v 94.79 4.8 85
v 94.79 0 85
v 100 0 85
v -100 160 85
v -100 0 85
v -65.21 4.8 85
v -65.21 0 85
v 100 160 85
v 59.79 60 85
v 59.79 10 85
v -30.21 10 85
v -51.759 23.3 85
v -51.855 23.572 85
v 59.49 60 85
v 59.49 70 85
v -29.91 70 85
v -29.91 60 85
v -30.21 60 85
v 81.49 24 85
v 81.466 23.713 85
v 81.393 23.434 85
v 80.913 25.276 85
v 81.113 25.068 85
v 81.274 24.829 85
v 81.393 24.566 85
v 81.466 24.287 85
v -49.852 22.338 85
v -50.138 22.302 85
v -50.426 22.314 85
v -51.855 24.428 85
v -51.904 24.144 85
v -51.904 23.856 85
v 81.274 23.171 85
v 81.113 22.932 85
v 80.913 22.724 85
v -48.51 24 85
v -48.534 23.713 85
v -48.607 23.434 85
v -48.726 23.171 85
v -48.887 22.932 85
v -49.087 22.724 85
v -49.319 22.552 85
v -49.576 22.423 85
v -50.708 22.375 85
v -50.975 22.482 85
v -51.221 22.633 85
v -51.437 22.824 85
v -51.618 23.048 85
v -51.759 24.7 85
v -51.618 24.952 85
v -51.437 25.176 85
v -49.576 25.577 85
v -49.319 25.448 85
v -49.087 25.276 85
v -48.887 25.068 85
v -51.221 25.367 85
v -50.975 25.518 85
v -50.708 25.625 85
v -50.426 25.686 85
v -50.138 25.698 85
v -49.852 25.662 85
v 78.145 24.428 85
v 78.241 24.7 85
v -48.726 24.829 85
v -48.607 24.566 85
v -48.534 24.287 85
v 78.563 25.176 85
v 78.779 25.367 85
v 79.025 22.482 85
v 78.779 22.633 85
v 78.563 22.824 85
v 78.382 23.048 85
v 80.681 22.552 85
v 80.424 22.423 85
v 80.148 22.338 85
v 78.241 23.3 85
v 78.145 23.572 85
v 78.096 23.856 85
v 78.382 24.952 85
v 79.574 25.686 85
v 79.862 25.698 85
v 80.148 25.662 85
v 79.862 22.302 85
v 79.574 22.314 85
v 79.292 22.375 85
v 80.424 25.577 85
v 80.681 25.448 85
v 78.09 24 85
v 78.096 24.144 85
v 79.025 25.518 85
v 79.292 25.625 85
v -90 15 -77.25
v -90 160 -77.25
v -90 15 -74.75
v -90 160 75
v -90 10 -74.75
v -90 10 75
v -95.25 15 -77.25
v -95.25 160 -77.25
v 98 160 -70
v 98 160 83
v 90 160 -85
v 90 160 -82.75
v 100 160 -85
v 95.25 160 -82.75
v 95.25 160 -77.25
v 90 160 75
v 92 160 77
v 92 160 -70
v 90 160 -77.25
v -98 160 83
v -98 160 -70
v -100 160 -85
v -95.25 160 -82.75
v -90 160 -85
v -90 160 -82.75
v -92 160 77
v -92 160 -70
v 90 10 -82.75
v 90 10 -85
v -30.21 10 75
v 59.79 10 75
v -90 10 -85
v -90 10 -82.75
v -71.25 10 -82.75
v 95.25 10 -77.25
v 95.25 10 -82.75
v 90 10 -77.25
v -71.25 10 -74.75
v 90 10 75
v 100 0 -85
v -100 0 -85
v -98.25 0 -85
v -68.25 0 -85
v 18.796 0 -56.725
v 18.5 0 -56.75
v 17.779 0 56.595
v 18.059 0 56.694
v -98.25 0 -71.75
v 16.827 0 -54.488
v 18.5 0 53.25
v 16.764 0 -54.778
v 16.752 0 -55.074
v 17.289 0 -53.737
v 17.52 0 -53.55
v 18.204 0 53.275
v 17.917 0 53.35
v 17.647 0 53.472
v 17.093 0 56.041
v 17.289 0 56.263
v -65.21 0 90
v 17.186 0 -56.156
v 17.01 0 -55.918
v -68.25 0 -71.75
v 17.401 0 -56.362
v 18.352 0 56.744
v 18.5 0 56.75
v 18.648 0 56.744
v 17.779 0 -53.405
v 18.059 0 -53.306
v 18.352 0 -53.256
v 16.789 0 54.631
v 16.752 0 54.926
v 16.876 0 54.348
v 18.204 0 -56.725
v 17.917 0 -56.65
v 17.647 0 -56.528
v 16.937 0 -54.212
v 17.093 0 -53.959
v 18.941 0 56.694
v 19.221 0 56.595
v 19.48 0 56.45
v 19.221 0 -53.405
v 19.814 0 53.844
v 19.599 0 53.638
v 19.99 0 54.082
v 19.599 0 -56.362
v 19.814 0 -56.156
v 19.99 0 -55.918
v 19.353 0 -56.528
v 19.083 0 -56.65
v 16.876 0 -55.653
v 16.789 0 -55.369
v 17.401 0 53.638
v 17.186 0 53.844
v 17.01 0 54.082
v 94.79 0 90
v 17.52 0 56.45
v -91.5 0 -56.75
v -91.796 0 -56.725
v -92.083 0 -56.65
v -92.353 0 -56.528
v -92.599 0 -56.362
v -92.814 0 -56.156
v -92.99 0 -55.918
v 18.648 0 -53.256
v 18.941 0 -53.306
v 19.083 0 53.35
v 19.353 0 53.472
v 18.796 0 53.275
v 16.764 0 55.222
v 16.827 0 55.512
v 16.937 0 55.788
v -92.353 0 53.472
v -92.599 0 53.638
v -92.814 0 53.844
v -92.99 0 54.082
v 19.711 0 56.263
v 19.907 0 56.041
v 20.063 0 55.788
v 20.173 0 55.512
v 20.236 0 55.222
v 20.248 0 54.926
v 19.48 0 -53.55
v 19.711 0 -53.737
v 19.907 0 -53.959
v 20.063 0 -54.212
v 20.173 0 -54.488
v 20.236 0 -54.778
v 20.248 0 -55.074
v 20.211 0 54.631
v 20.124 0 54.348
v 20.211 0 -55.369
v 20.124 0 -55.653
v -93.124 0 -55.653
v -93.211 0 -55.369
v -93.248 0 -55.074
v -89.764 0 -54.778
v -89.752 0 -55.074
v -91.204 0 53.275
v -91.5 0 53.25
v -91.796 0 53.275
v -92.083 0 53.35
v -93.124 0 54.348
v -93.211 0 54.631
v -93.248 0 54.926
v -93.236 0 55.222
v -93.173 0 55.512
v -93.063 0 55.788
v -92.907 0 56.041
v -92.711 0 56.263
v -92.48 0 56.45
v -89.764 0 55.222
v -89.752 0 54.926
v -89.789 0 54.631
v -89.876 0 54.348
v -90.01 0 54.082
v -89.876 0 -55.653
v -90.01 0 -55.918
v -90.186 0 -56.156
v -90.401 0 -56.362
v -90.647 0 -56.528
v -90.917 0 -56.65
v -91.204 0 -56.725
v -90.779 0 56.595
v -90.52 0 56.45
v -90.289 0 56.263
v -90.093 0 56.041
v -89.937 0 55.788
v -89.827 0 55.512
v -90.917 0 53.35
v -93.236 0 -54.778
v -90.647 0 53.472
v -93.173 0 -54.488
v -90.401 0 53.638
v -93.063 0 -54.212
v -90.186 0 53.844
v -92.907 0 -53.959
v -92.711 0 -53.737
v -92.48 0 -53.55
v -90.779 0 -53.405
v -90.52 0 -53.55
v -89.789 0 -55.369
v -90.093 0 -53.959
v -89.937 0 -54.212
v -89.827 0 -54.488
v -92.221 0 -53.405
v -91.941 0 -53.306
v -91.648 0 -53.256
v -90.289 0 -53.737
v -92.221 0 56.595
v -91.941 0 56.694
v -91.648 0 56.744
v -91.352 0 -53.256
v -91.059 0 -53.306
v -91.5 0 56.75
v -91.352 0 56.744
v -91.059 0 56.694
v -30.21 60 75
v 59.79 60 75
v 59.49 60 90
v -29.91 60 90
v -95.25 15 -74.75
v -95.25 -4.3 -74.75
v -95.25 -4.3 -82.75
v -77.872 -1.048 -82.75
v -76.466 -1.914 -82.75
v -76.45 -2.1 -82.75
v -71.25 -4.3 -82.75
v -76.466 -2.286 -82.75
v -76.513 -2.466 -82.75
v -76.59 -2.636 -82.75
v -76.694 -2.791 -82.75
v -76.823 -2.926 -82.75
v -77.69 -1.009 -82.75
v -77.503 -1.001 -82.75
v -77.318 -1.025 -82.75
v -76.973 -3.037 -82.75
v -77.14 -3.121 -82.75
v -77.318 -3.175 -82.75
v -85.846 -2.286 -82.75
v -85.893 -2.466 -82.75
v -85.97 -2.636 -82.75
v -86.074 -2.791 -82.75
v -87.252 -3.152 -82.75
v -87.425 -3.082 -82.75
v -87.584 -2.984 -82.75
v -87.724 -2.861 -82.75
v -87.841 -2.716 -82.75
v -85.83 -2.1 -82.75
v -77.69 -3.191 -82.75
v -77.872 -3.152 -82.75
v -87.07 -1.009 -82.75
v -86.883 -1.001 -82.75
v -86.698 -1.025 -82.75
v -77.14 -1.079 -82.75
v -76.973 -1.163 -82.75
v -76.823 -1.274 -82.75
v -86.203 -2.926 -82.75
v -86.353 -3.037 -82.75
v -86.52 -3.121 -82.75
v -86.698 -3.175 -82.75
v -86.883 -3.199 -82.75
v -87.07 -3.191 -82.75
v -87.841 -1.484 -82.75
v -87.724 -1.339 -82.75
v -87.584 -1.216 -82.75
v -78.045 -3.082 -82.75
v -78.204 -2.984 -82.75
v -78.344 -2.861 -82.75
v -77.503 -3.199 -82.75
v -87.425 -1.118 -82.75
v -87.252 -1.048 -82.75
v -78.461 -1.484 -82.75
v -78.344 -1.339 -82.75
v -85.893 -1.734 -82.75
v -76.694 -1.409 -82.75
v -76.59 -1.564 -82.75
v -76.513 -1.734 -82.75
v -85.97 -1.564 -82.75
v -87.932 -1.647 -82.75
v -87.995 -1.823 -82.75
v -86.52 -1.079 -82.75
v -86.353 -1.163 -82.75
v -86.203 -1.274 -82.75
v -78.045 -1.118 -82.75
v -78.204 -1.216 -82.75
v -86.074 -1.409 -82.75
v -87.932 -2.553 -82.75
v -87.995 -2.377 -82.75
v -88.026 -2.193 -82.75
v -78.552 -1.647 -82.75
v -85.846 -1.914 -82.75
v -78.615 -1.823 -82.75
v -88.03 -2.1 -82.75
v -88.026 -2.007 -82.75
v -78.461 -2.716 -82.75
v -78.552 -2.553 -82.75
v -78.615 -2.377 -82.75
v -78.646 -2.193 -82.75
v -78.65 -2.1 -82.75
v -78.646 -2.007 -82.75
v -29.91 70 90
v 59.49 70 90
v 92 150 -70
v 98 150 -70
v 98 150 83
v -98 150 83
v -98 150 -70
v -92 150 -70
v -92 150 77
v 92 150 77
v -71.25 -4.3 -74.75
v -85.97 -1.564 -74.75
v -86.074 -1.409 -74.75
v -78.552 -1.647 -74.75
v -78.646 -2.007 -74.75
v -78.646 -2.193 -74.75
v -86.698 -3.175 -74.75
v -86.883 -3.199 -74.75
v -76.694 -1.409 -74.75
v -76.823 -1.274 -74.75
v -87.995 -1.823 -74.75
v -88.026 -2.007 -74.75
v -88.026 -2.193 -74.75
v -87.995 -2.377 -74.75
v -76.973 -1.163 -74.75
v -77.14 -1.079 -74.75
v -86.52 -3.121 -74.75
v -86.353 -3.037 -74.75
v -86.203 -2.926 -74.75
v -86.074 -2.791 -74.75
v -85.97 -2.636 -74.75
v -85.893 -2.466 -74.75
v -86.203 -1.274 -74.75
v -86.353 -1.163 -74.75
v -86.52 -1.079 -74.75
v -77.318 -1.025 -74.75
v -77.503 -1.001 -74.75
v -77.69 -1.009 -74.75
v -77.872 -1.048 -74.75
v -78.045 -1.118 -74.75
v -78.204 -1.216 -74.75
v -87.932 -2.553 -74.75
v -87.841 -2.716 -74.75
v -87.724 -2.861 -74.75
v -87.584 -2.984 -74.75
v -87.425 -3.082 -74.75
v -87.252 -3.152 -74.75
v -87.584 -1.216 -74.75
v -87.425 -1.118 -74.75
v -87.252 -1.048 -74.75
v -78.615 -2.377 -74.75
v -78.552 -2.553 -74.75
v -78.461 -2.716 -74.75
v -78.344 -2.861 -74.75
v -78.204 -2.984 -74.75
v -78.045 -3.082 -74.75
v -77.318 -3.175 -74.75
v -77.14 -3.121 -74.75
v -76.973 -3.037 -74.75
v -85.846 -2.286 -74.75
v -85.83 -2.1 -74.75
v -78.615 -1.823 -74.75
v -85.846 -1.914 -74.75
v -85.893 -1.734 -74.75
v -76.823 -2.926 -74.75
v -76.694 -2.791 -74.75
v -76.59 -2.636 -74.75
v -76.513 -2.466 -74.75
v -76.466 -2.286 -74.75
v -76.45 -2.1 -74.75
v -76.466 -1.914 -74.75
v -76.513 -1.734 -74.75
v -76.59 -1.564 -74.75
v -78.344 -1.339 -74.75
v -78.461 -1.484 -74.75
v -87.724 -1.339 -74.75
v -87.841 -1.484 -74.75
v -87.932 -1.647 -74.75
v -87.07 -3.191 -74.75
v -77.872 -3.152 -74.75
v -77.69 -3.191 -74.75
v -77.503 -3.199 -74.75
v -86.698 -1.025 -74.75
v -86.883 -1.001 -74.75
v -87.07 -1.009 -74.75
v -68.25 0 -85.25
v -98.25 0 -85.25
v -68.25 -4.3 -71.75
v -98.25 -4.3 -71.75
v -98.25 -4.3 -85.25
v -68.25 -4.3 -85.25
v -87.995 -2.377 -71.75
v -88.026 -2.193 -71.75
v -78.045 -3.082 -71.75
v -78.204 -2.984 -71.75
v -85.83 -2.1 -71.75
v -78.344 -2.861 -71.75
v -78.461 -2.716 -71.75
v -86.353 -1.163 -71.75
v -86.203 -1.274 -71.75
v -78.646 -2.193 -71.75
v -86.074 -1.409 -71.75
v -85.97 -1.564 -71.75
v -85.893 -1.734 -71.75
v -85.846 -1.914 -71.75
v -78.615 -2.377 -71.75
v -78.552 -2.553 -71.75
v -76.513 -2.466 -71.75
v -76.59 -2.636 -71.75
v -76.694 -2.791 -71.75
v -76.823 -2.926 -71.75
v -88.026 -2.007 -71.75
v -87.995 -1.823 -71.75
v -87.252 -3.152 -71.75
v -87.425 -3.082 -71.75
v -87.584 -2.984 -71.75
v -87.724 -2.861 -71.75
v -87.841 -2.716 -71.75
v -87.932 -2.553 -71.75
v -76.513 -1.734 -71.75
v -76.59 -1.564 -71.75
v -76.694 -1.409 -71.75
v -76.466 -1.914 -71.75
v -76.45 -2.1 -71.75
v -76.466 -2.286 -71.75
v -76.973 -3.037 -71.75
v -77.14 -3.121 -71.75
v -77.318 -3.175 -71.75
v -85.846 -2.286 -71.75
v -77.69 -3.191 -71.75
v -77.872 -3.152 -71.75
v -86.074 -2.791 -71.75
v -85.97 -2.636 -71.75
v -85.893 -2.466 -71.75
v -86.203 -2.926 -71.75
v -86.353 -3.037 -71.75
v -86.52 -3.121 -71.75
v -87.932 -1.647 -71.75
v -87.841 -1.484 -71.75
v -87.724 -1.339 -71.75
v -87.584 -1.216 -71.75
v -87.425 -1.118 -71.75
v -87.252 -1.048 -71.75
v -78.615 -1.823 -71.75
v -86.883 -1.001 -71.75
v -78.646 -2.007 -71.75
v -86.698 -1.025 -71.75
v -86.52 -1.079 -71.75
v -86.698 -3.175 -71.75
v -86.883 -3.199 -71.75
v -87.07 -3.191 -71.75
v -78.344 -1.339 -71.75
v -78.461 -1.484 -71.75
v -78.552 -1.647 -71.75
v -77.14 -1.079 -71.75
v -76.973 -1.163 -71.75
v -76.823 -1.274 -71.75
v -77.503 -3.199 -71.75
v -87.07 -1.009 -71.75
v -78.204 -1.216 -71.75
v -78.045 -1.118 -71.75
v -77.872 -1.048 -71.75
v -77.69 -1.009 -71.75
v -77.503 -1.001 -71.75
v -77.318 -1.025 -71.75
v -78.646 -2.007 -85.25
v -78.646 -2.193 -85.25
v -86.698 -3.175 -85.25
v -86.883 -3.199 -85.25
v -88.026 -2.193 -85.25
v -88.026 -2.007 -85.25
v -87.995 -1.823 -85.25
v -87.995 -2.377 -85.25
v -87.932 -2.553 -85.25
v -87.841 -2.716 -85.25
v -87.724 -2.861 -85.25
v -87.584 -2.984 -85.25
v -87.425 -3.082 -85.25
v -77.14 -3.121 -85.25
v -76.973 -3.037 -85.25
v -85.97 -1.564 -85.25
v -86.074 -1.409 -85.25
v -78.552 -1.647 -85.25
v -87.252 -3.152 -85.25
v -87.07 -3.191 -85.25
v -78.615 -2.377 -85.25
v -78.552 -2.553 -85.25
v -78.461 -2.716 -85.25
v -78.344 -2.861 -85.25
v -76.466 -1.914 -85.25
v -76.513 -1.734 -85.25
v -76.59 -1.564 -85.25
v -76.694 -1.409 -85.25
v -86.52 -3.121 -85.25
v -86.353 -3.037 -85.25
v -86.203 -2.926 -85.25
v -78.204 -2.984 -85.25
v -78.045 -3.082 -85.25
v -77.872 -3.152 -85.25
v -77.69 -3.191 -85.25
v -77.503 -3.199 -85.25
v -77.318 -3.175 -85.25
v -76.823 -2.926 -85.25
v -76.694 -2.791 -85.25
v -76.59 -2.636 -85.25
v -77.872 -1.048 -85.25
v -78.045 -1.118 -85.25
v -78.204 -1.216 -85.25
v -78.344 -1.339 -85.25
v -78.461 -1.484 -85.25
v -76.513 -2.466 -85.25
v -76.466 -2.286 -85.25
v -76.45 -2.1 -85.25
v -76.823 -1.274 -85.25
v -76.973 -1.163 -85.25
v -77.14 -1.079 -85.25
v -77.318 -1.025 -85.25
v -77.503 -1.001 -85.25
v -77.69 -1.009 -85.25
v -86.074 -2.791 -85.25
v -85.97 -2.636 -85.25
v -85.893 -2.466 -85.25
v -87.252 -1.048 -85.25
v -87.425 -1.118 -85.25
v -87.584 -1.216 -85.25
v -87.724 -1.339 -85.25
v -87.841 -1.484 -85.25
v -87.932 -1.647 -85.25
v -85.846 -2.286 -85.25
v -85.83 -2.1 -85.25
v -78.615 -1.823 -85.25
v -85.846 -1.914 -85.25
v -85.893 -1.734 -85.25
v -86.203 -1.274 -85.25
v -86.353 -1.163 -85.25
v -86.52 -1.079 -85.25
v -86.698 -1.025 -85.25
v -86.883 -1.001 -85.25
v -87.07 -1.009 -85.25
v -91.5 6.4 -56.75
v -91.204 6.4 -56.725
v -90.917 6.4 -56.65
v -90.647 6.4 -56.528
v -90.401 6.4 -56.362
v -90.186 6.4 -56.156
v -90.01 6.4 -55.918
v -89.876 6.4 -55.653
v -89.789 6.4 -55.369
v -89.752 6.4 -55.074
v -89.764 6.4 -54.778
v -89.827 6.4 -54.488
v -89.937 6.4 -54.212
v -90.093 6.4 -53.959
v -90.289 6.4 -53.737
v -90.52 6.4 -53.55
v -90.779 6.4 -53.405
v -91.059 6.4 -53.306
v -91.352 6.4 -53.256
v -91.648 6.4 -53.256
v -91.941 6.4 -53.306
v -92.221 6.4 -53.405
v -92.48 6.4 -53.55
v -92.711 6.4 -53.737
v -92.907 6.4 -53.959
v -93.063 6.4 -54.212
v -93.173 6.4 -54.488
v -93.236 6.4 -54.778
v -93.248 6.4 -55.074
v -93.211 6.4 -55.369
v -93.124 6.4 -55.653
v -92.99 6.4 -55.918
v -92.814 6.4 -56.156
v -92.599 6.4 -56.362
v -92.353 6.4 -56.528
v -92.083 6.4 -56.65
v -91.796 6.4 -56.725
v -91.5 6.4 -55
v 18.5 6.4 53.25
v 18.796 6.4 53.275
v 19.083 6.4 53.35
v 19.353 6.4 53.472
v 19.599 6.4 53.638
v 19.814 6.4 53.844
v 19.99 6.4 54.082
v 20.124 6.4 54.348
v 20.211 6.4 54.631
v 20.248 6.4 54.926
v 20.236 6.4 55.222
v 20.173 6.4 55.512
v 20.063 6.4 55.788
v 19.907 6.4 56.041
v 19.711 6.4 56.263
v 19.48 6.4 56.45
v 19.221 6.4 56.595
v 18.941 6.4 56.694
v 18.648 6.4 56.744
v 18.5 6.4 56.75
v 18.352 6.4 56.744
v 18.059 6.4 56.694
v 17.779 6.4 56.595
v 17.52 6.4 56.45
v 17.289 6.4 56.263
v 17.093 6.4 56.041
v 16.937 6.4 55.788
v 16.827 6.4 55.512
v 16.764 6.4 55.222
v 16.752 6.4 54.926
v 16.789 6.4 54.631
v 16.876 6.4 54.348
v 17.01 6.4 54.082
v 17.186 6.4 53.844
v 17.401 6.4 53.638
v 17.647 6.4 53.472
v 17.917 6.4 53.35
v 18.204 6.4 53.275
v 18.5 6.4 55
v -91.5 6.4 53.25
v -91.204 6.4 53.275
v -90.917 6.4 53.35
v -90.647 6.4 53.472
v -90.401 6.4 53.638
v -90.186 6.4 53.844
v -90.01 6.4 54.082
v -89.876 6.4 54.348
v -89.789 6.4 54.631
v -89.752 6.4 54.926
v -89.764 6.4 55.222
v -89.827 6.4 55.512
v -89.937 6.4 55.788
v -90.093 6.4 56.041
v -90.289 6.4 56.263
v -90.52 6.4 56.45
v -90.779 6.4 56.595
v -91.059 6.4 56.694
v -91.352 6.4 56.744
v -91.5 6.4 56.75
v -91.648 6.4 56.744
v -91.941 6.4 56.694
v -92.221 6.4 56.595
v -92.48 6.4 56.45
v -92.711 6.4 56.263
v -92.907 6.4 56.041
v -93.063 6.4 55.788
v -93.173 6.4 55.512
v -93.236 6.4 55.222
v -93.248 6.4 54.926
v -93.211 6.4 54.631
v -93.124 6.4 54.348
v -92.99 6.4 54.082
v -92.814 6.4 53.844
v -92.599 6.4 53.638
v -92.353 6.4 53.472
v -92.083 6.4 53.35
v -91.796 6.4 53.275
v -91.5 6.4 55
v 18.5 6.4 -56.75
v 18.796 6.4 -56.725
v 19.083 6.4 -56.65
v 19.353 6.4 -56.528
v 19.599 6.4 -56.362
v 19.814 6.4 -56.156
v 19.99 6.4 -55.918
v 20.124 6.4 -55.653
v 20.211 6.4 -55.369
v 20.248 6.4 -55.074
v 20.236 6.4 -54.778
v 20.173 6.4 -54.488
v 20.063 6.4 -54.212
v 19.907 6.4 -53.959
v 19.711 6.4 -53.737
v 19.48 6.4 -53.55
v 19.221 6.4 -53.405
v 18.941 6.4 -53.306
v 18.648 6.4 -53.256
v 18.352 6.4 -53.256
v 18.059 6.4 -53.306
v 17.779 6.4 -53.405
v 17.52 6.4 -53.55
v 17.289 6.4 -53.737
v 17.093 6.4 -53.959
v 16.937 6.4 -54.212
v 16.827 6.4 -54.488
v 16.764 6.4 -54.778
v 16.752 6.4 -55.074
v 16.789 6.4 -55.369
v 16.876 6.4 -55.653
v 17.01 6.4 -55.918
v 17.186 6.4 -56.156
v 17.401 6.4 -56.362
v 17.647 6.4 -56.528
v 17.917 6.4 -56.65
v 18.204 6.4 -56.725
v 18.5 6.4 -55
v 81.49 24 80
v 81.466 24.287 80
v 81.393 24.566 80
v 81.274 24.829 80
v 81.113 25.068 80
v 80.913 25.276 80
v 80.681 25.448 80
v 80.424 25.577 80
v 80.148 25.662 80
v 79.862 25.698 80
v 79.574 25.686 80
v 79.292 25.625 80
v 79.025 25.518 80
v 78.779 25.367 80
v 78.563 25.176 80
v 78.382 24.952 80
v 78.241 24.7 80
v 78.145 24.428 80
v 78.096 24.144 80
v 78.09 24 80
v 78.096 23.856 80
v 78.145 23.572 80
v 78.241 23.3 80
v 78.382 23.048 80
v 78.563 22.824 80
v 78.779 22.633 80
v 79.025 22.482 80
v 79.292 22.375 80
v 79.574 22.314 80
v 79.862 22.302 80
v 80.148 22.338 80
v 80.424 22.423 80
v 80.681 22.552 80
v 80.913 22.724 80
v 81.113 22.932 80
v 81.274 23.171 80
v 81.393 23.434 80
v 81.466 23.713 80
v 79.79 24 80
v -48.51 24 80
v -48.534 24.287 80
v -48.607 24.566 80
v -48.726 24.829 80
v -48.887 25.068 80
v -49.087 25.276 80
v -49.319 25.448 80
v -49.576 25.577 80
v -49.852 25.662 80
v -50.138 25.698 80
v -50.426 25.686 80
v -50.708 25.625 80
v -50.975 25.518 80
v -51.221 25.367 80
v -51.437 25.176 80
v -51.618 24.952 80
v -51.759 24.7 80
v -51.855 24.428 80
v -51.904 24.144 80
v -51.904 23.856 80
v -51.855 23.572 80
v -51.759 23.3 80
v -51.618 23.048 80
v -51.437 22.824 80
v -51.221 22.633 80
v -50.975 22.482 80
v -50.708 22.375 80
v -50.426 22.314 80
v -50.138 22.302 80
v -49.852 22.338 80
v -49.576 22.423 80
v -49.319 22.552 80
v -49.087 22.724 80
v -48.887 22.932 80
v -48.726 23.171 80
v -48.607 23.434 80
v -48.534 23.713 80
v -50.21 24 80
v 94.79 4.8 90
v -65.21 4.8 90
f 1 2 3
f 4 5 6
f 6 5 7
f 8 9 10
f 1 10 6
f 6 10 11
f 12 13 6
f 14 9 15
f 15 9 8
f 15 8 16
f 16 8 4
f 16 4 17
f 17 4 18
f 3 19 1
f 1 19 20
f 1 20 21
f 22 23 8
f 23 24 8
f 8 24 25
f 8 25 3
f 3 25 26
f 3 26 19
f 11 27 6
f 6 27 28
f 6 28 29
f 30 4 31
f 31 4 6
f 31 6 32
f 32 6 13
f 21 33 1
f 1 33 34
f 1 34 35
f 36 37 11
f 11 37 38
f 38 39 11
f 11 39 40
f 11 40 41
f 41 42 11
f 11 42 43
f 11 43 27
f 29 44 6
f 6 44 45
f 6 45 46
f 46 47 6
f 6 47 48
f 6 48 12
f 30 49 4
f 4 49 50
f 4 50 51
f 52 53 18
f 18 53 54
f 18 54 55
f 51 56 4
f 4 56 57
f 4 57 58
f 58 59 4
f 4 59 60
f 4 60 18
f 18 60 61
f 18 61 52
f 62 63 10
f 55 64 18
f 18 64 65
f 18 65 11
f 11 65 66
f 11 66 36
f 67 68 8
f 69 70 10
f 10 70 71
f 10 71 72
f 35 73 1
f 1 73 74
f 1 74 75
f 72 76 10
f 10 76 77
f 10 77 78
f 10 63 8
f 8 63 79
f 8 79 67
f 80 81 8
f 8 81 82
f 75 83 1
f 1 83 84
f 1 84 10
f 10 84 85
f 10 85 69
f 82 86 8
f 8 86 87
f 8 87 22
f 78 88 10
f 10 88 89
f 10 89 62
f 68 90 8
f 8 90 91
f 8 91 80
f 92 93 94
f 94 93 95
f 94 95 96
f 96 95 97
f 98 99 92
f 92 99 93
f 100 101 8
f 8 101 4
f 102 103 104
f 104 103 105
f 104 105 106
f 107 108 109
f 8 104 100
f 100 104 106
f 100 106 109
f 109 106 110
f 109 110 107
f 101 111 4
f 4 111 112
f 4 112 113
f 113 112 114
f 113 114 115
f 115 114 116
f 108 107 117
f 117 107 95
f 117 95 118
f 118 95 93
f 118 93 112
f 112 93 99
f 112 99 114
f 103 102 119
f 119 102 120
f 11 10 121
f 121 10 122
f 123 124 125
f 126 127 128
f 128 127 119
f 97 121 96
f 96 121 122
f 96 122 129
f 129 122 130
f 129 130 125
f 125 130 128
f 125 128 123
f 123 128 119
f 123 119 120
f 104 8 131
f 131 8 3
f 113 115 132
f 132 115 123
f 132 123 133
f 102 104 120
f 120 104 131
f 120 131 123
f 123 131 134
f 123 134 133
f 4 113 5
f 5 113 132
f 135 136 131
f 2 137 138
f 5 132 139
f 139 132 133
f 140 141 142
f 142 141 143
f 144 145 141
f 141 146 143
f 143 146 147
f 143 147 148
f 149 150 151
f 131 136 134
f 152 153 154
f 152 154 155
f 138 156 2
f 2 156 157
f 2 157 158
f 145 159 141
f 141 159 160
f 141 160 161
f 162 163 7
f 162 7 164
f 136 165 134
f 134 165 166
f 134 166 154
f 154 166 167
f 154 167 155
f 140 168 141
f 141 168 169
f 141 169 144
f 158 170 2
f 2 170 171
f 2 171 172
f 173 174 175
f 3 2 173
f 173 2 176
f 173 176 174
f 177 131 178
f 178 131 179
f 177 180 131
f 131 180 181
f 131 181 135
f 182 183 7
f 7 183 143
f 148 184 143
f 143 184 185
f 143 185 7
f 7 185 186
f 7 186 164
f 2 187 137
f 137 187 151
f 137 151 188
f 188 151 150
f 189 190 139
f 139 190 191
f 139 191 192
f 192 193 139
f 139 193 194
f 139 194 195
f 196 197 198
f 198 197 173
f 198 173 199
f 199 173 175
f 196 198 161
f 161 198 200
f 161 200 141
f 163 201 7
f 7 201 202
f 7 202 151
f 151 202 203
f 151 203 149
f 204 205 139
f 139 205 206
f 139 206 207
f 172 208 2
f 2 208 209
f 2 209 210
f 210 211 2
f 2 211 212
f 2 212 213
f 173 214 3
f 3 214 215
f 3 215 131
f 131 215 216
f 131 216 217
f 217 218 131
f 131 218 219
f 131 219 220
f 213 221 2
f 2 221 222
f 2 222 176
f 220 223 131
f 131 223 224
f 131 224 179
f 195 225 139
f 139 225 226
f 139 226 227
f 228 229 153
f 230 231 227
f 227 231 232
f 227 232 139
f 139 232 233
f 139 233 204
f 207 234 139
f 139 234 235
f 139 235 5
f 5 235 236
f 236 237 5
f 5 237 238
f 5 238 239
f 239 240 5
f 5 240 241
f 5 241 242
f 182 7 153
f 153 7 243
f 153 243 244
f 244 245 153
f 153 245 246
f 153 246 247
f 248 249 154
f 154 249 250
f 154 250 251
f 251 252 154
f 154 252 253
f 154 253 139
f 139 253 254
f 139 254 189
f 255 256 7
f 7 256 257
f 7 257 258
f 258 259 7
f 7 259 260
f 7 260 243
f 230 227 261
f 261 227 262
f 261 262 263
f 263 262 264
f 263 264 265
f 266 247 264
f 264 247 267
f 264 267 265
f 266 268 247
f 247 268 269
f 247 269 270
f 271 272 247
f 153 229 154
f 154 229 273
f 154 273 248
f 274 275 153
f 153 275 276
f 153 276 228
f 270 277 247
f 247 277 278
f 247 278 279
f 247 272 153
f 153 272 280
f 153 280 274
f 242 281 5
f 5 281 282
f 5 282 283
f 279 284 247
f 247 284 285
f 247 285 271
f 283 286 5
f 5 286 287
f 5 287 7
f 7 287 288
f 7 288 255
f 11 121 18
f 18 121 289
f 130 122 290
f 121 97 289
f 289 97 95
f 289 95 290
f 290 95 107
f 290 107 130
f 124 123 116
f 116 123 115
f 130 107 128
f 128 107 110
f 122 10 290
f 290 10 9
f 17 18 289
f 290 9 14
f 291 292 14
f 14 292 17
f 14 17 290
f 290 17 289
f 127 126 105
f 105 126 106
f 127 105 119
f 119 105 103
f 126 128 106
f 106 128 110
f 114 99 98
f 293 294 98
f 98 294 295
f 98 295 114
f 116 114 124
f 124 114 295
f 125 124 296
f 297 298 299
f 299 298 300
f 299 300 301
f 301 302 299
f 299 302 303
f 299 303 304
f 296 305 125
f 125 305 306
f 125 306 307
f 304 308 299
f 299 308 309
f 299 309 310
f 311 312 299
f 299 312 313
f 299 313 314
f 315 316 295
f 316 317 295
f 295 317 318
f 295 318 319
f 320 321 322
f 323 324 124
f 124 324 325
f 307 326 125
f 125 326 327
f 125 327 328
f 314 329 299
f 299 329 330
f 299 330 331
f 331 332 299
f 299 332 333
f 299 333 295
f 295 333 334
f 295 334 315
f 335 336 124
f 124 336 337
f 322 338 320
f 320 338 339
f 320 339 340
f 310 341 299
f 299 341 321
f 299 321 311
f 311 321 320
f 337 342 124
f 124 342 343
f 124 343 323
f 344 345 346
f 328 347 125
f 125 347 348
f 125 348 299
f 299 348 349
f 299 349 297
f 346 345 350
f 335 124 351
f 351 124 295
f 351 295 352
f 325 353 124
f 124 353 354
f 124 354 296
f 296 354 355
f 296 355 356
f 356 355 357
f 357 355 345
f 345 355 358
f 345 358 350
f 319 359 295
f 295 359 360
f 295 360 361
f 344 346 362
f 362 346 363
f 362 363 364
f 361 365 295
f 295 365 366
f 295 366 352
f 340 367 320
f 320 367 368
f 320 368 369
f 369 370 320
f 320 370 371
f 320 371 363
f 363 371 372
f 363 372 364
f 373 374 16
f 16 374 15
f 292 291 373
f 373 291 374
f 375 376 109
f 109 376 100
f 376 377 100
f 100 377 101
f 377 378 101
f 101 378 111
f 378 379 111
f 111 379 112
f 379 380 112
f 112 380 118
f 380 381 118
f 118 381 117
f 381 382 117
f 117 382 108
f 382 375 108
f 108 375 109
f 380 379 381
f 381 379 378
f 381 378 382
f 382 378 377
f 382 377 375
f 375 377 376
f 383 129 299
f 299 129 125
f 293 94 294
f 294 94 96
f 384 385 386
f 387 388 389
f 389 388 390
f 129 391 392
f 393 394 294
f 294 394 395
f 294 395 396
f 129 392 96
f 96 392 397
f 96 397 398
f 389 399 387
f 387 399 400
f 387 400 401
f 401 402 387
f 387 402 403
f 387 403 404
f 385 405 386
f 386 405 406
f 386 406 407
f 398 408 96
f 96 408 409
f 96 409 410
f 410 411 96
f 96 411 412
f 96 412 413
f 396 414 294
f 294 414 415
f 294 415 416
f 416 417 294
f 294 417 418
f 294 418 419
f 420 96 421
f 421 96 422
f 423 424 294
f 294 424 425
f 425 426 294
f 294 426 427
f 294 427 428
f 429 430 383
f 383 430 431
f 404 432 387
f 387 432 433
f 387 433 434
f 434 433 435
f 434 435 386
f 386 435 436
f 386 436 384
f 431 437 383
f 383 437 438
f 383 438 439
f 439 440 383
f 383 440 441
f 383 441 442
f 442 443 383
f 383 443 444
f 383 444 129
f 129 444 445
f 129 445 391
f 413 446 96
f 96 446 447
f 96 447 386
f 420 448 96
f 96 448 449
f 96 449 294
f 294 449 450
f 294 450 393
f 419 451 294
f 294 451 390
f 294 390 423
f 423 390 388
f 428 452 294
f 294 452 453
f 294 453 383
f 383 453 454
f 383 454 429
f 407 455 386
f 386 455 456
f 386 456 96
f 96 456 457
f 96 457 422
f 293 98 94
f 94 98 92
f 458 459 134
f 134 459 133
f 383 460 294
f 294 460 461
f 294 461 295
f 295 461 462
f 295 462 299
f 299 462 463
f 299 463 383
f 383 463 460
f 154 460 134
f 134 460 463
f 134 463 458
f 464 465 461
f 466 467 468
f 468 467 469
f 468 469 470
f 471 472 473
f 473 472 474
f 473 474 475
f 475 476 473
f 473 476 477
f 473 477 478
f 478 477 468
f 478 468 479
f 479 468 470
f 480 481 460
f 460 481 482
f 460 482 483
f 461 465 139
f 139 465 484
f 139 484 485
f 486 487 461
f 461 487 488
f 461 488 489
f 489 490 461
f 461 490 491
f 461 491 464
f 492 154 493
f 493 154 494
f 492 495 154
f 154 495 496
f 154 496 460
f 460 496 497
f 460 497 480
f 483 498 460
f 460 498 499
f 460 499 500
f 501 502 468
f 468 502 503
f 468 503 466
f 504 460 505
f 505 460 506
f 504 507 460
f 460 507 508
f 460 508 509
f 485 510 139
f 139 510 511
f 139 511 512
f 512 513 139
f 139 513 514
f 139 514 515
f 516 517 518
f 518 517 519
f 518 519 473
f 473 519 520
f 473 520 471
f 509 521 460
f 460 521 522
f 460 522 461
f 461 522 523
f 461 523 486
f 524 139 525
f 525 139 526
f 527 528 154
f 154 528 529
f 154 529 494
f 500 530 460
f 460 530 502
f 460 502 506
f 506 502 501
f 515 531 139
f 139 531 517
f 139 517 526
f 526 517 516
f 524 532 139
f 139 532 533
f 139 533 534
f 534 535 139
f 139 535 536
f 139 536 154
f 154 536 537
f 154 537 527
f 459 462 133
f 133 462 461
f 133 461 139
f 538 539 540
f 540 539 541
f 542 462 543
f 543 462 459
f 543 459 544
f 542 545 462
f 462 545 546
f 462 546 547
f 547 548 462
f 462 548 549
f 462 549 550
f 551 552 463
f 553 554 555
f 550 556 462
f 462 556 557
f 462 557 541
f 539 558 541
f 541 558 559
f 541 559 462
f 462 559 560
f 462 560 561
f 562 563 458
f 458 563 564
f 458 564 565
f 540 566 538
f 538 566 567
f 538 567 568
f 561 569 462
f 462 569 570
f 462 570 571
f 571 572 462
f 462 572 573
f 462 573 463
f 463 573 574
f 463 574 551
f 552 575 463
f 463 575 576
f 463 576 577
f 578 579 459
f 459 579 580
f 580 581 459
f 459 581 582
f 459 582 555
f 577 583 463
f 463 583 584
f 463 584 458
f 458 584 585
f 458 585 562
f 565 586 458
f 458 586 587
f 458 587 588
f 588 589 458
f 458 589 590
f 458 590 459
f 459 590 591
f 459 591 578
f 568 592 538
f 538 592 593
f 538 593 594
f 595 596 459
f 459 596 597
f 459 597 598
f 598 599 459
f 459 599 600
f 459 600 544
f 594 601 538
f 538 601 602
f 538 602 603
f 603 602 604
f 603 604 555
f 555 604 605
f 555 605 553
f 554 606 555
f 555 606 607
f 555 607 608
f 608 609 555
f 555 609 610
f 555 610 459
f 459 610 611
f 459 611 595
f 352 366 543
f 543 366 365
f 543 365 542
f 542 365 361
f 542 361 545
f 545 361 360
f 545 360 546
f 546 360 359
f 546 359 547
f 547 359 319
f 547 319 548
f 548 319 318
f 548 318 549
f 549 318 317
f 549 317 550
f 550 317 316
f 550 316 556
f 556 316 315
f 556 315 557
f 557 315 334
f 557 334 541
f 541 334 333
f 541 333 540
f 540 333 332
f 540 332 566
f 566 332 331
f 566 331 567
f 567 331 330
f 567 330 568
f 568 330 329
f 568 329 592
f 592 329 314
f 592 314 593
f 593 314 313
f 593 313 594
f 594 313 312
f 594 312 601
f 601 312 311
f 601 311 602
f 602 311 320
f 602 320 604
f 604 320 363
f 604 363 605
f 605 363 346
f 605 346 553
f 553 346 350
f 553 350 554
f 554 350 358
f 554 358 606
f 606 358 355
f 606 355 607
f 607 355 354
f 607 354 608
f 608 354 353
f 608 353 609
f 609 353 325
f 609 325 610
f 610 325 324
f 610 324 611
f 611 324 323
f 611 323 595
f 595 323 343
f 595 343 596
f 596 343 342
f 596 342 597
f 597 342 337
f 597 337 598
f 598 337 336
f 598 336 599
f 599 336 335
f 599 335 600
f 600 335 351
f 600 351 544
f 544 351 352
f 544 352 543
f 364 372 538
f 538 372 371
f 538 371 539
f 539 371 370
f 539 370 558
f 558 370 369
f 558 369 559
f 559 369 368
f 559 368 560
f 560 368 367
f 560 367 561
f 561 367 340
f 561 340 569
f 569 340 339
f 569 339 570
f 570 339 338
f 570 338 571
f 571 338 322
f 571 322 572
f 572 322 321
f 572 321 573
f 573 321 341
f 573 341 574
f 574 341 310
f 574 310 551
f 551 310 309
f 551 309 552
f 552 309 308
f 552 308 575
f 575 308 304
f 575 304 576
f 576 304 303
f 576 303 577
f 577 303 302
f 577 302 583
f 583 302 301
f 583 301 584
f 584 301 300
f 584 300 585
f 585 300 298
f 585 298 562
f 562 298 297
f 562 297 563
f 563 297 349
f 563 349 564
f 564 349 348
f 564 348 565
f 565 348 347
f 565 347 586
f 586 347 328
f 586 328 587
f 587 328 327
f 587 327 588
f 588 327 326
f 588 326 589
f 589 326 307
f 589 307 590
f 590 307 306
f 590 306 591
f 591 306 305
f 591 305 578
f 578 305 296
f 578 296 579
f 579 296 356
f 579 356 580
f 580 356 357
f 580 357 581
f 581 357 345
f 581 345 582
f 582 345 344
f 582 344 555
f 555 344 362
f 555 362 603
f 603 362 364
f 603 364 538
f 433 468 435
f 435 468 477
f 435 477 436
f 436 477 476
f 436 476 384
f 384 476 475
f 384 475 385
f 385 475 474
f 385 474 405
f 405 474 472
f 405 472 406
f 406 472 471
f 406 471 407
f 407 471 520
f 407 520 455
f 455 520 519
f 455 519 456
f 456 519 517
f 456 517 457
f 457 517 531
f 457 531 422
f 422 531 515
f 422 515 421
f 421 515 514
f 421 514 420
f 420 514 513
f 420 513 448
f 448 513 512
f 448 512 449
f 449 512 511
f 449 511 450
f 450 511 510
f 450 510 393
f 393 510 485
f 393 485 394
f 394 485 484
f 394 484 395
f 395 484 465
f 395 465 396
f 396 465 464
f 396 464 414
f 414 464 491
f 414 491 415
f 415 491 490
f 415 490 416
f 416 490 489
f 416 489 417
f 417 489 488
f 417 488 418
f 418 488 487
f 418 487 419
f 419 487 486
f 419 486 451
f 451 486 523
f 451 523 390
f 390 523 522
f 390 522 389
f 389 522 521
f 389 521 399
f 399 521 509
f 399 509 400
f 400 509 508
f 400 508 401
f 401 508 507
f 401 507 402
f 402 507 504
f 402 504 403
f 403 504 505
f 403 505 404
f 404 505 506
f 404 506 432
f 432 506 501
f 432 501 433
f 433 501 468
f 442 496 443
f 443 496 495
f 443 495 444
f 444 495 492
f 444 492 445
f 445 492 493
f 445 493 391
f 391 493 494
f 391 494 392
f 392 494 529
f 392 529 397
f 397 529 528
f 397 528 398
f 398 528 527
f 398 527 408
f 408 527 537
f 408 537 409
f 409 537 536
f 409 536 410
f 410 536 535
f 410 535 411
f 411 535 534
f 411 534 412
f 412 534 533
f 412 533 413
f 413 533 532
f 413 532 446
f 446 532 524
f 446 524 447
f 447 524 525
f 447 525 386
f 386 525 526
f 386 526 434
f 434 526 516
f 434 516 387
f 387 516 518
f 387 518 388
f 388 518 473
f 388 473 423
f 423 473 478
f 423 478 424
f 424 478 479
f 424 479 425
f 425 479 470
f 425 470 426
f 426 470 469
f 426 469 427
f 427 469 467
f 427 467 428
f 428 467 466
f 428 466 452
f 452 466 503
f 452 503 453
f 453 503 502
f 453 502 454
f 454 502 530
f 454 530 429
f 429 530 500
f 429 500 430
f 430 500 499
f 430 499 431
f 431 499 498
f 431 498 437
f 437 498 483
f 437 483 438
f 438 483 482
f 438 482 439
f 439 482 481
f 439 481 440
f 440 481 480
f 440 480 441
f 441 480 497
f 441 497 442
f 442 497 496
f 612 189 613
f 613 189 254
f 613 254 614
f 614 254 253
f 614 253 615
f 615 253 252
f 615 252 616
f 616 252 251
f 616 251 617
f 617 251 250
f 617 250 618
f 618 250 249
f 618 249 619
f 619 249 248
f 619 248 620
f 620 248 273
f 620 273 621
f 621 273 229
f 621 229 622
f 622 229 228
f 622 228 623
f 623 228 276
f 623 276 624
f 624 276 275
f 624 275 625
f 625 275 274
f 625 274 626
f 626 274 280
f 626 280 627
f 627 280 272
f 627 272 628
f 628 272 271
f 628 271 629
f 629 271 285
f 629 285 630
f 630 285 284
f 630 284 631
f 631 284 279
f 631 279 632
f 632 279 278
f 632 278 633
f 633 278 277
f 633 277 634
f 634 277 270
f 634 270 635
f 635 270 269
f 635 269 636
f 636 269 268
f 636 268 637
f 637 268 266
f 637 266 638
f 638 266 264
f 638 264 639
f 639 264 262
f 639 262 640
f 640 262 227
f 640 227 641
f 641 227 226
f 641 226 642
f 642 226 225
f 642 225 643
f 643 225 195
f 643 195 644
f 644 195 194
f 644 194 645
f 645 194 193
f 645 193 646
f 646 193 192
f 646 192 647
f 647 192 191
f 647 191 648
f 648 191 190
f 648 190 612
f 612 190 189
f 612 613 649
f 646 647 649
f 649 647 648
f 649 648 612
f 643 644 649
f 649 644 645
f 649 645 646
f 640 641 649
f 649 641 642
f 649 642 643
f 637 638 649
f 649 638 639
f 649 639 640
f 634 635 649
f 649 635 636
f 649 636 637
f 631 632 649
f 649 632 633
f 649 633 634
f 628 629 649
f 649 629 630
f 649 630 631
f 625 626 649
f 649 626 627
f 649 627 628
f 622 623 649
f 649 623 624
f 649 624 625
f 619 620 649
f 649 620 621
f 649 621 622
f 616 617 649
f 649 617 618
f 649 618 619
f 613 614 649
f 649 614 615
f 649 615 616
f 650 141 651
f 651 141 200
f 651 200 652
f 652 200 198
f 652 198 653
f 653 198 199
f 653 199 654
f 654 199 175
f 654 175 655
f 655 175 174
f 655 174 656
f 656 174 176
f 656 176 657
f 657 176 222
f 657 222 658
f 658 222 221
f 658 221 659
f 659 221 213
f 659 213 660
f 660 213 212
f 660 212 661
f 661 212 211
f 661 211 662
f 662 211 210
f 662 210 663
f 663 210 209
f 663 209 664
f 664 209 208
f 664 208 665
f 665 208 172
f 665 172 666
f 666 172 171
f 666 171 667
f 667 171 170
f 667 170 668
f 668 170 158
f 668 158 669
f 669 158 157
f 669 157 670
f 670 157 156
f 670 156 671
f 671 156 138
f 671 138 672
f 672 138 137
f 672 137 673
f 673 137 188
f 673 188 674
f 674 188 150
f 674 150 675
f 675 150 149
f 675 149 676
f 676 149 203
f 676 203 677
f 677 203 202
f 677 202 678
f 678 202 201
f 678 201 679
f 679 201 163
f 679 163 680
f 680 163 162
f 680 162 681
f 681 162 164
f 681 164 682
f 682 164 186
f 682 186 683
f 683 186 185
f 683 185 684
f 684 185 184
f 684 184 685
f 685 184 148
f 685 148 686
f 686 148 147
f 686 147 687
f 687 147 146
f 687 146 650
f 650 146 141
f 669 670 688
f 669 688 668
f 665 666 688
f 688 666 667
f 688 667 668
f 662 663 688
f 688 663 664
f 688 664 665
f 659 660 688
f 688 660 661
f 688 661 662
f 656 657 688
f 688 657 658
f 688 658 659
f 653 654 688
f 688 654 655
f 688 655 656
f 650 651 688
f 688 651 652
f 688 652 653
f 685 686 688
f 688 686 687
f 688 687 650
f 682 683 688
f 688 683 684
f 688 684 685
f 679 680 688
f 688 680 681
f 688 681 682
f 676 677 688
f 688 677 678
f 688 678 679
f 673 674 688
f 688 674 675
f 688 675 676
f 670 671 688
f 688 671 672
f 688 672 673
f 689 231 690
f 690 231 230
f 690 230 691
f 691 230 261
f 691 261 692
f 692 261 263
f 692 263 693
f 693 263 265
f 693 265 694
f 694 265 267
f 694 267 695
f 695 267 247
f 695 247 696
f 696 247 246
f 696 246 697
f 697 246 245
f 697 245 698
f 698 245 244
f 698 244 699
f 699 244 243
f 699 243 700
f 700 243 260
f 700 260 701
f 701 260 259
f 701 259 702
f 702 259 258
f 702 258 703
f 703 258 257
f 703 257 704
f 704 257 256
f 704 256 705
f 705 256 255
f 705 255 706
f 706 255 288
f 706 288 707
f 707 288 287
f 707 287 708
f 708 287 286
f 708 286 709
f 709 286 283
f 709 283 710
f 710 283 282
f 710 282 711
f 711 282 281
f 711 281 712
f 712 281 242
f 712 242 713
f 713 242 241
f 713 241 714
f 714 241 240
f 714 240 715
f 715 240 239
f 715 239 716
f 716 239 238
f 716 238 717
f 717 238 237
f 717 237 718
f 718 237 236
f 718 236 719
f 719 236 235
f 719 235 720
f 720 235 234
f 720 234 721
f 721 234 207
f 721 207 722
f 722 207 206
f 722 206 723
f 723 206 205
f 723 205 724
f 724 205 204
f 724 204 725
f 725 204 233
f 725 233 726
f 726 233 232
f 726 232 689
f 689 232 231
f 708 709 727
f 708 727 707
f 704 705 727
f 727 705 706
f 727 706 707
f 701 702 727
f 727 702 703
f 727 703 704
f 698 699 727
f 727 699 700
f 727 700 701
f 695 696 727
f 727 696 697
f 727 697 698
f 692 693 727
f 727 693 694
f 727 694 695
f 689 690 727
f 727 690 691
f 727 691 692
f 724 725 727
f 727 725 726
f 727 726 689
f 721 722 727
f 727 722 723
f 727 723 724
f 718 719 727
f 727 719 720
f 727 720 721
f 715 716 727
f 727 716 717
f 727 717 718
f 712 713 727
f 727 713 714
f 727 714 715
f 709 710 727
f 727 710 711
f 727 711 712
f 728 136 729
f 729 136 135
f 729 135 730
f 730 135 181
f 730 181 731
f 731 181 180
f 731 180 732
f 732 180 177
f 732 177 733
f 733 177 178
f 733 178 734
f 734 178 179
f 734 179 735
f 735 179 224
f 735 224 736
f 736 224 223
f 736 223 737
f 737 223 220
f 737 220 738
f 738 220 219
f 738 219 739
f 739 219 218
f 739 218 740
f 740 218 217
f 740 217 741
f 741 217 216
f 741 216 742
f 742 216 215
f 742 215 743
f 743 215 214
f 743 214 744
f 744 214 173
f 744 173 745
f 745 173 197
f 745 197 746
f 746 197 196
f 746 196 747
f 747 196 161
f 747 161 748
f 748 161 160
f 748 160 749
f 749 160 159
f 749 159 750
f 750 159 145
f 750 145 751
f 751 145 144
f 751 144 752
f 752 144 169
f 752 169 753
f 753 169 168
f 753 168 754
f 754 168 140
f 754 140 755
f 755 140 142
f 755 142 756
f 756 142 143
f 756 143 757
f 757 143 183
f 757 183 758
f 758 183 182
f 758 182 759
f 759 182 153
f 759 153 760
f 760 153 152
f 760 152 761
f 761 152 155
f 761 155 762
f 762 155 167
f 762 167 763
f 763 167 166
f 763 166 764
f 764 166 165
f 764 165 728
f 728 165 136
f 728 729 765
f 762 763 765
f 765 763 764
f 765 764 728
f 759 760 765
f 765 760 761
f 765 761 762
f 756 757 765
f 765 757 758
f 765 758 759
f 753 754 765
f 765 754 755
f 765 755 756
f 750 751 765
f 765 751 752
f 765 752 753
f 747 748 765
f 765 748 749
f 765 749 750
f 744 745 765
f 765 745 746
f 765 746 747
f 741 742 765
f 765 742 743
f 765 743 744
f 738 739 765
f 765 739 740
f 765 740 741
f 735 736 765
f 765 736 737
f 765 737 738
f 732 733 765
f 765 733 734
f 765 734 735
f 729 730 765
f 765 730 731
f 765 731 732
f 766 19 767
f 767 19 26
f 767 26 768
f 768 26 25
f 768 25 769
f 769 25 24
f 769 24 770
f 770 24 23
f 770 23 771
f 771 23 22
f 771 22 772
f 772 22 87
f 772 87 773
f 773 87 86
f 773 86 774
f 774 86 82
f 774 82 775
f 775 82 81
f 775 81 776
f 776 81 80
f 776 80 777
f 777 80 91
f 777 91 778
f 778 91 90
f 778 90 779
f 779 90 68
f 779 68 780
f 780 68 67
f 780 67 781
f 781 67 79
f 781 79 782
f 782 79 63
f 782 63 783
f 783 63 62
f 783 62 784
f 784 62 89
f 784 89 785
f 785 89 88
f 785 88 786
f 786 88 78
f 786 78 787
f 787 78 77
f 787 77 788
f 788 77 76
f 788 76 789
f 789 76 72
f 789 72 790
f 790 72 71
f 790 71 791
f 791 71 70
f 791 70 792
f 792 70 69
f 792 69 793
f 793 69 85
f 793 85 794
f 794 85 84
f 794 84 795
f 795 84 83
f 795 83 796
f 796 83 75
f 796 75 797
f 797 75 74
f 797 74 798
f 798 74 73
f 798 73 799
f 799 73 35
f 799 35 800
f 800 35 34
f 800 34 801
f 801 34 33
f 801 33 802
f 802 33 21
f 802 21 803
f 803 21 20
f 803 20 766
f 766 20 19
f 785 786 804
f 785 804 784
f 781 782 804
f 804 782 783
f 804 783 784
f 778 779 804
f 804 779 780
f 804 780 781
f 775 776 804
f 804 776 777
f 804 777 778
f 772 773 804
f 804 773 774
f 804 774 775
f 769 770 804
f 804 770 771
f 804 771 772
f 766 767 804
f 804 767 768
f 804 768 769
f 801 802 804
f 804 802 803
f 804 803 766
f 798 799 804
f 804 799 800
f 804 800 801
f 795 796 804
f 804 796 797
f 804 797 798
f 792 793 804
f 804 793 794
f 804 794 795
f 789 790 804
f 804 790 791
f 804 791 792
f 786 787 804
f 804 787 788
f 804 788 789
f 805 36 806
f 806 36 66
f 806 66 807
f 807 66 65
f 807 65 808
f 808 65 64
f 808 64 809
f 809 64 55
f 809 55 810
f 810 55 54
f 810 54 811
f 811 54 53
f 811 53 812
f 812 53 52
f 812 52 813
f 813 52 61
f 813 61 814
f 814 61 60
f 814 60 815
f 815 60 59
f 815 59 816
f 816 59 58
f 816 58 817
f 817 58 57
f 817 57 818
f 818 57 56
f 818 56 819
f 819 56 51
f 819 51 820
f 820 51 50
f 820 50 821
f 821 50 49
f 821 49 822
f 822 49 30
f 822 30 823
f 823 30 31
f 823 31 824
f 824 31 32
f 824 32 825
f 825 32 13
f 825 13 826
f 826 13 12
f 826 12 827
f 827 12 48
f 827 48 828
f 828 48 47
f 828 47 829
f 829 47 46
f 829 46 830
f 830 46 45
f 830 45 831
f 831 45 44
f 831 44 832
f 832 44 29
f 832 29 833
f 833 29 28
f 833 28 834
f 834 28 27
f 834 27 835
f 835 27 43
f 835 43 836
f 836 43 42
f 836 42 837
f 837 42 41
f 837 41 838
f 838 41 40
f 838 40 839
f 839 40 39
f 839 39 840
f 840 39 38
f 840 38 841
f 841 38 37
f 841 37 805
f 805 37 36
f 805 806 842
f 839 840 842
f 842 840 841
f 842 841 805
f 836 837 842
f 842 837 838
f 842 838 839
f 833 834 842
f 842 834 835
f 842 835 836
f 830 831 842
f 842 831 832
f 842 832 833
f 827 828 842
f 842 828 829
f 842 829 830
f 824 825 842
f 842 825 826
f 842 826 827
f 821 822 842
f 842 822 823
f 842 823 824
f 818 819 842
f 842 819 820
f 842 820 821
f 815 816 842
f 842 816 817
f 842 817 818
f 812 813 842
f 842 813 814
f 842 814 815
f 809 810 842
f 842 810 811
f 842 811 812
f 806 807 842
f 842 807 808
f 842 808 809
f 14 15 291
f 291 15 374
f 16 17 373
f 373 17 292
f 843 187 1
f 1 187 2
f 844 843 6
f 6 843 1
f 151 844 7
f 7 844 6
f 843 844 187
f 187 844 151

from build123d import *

# Parameters (mm, degrees)
CROQUIS1_W              = 200
CROQUIS1_H              = 170
SALIENTE_EXTRUIR1_DEPTH = 10
SALIENTE_EXTRUIR2_DEPTH = 150
CROQUIS3_W              = 90
CROQUIS3_H              = 10
SALIENTE_EXTRUIR3_DEPTH = 100
CROQUIS4_W              = 5.25
CROQUIS4_H              = 5.5
CORTAR_EXTRUIR1_DEPTH   = 170
CROQUIS7_W              = 90
CROQUIS7_H              = 10
SALIENTE_EXTRUIR4_DEPTH = 5
CORTAR_EXTRUIR3_DEPTH   = 10
CORTAR_EXTRUIR4_DEPTH   = 30
CORTAR_EXTRUIR5_DEPTH   = 5
CROQUIS10_W             = 30
CROQUIS10_H             = 13.5
CROQUIS10_W_2           = 24
CROQUIS10_H_2           = 8
SALIENTE_EXTRUIR5_DEPTH = 4.3
CROQUIS11_R             = 1.1
CORTAR_EXTRUIR6_DEPTH   = 14.3
CROQUIS12_R             = 1.75
CORTAR_EXTRUIR7_DEPTH   = 6.4
CROQUIS13_R             = 1.7
CORTAR_EXTRUIR8_DEPTH   = 5
CROQUIS14_W             = 0.3
CROQUIS14_H             = 10
CORTAR_EXTRUIR9_DEPTH   = 5
SALIENTE_EXTRUIR6_DEPTH = 5


with BuildPart() as part:
    # Croquis1 → Saliente-Extruir1 (new body)
    with BuildSketch(Plane(origin=(0, 0, 0), x_dir=(1, 0, 0), z_dir=(0, 1, 0))):
        Rectangle(CROQUIS1_W, CROQUIS1_H)
    extrude(amount=SALIENTE_EXTRUIR1_DEPTH)

    # Croquis2 → Saliente-Extruir2 (add)
    with BuildSketch(Plane(origin=(0, 10, 0), x_dir=(1, 0, 0), z_dir=(0, 1, 0))):
        Polygon((-100, 85), (-100, -85), (-30.21, -85), (-30.21, -75), (-90, -75), (-90, 85), align=None)
        Polygon((59.79, -75), (59.79, -85), (100, -85), (100, 85), (90, 85), (90, -75), align=None)
    extrude(amount=SALIENTE_EXTRUIR2_DEPTH)

    # Croquis3 → Saliente-Extruir3 (add)
    with BuildSketch(Plane(origin=(0, 160, 0), x_dir=(1, 0, 0), z_dir=(0, 1, 0))):
        with Locations((14.79, -80)):
            Rectangle(CROQUIS3_W, CROQUIS3_H)
    extrude(amount=-SALIENTE_EXTRUIR3_DEPTH)

    # Croquis4 → Cortar-Extruir1 (cut)
    with BuildSketch(Plane(origin=(0, 10, 65), x_dir=(-1, 0, 0), z_dir=(0, 1, 0))):
        with Locations((92.625, -145)):
            Rectangle(CROQUIS4_W, CROQUIS4_H)
        with Locations((-92.625, -145)):
            Rectangle(CROQUIS4_W, CROQUIS4_H)
    extrude(amount=CORTAR_EXTRUIR1_DEPTH, mode=Mode.SUBTRACT)

    # Croquis7 → Saliente-Extruir4 (add)
    with BuildSketch(Plane.XY.offset(85)):
        with Locations((14.79, 65)):
            Rectangle(CROQUIS7_W, CROQUIS7_H)
    extrude(amount=SALIENTE_EXTRUIR4_DEPTH)

    # Croquis8 → Cortar-Extruir3 (cut)
    with BuildSketch(Plane(origin=(0, 160, 0), x_dir=(1, 0, 0), z_dir=(0, 1, 0))):
        Polygon((98, -83), (98, 70), (92, 70), (92, -77), (-92, -77), (-92, 70), (-98, 70), (-98, -83), align=None)
    extrude(amount=-CORTAR_EXTRUIR3_DEPTH, mode=Mode.SUBTRACT)

    # Croquis9 → Cortar-Extruir4 (cut)
    with BuildSketch(Plane(origin=(0, 10, 0), x_dir=(1, 0, 0), z_dir=(0, 1, 0))):
        Polygon((-95.25, 77.25), (-95.25, 82.75), (-71.25, 82.75), (-71.25, 77.25), (-71.25, 74.75), (-95.25, 74.75), align=None)
    extrude(amount=-CORTAR_EXTRUIR4_DEPTH, mode=Mode.SUBTRACT)

    # Croquis9<2> → Cortar-Extruir5 (cut)
    with BuildSketch(Plane(origin=(0, 10, 0), x_dir=(1, 0, 0), z_dir=(0, 1, 0))):
        Polygon((-95.25, 77.25), (-95.25, 82.75), (-71.25, 82.75), (-71.25, 77.25), (-71.25, 74.75), (-95.25, 74.75), align=None)
    extrude(amount=CORTAR_EXTRUIR5_DEPTH, mode=Mode.SUBTRACT)

    # Croquis10 → Saliente-Extruir5 (add)
    with BuildSketch(Plane.XZ):
        with Locations((-83.25, -78.5)):
            Rectangle(CROQUIS10_W, CROQUIS10_H)
        with Locations((-83.25, -78.75)):
            Rectangle(CROQUIS10_W_2, CROQUIS10_H_2, mode=Mode.SUBTRACT)
    extrude(amount=SALIENTE_EXTRUIR5_DEPTH)

    # Croquis11 → Cortar-Extruir6 (cut)
    with BuildSketch(Plane.XY.offset(-71.75)):
        with Locations((-77.55, -2.1)):
            Circle(CROQUIS11_R)
        with Locations((-86.93, -2.1)):
            Circle(CROQUIS11_R)
    extrude(amount=-CORTAR_EXTRUIR6_DEPTH, mode=Mode.SUBTRACT)

    # Croquis12 → Cortar-Extruir7 (cut)
    with BuildSketch(Plane.XZ):
        with Locations((-91.5, -55)):
            Circle(CROQUIS12_R)
        with Locations((18.5, -55)):
            Circle(CROQUIS12_R)
        with Locations((-91.5, 55)):
            Circle(CROQUIS12_R)
        with Locations((18.5, 55)):
            Circle(CROQUIS12_R)
    extrude(amount=-CORTAR_EXTRUIR7_DEPTH, mode=Mode.SUBTRACT)

    # Croquis13 → Cortar-Extruir8 (cut)
    with BuildSketch(Plane.XY.offset(85)):
        with Locations((-50.21, 24)):
            Circle(CROQUIS13_R)
        with Locations((79.79, 24)):
            Circle(CROQUIS13_R)
    extrude(amount=-CORTAR_EXTRUIR8_DEPTH, mode=Mode.SUBTRACT)

    # Croquis14 → Cortar-Extruir9 (cut)
    with BuildSketch(Plane.XY.offset(90)):
        with Locations((-30.06, 65)):
            Rectangle(CROQUIS14_W, CROQUIS14_H)
        with Locations((59.64, 65)):
            Rectangle(CROQUIS14_W, CROQUIS14_H)
    extrude(amount=-CORTAR_EXTRUIR9_DEPTH, mode=Mode.SUBTRACT)

    # Croquis15 → Saliente-Extruir6 (add)
    with BuildSketch(Plane.XY.offset(85)):
        Polygon((14.79, 0), (94.79, 0), (94.79, 4.8), (14.79, 4.8), (-65.21, 4.8), (-65.21, 0), align=None)
    extrude(amount=SALIENTE_EXTRUIR6_DEPTH)


solid = part.part
